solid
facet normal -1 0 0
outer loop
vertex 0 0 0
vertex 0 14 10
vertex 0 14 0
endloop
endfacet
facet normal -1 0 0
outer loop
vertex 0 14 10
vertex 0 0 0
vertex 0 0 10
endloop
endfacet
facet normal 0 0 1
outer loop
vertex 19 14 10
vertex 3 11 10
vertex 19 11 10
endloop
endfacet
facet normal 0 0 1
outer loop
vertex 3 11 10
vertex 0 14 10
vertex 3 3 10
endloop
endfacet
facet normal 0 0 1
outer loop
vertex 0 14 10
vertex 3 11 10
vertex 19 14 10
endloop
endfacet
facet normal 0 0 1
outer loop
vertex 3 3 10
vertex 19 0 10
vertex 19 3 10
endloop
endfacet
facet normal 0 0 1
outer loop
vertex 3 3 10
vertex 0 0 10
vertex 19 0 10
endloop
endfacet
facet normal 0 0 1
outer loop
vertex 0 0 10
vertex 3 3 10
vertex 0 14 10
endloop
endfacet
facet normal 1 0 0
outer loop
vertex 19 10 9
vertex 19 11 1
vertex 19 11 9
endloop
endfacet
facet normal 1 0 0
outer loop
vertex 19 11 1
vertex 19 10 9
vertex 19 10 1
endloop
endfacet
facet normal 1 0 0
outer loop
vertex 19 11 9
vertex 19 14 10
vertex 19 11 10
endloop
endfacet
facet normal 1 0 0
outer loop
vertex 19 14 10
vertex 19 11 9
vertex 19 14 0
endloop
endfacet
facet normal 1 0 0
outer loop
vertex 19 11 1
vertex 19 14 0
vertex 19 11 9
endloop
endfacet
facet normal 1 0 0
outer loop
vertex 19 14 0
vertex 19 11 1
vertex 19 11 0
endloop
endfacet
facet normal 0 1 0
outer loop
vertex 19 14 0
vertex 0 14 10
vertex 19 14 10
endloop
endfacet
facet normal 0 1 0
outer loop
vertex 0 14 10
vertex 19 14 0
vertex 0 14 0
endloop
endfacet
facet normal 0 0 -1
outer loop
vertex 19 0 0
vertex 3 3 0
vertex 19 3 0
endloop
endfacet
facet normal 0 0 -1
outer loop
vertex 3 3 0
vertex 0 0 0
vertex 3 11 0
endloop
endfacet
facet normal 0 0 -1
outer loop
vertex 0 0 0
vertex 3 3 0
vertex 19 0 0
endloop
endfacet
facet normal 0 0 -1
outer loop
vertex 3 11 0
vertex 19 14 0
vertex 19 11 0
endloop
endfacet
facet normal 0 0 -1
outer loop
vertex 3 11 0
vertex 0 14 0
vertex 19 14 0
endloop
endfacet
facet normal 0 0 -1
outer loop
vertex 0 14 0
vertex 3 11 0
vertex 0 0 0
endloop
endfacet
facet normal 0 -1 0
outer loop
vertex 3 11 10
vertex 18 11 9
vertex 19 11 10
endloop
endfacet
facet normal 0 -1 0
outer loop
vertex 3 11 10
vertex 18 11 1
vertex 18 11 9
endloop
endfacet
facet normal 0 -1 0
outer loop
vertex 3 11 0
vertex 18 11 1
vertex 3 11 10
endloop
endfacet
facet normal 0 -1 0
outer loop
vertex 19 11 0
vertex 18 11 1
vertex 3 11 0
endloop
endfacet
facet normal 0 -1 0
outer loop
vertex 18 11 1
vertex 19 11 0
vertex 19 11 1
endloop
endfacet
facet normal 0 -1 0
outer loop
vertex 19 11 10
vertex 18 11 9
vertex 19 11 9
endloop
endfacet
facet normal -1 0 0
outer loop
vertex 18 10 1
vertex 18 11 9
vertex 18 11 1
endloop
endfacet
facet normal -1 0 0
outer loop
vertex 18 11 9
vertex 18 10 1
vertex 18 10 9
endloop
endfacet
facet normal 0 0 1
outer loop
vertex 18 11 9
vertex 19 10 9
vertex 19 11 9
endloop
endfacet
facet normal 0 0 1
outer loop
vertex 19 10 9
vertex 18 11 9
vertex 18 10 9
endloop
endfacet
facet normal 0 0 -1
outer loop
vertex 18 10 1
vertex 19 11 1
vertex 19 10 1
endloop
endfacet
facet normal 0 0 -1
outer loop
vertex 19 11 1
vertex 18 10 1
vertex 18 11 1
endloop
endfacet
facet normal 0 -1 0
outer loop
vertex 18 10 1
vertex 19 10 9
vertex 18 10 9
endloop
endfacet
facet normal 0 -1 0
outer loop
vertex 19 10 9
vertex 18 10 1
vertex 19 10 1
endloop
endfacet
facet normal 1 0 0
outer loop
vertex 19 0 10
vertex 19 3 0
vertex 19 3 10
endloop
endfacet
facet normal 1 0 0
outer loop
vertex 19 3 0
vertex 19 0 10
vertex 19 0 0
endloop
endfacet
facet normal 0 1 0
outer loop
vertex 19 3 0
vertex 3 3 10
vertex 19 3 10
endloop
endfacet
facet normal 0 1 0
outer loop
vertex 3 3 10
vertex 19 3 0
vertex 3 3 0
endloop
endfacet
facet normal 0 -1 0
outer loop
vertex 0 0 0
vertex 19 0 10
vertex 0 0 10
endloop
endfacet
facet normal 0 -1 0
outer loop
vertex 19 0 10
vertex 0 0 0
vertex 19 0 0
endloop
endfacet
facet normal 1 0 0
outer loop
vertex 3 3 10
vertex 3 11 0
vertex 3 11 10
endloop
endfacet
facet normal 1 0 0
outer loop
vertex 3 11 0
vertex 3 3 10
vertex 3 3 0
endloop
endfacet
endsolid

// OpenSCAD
cube([19,3,10]);
translate([0,11,0]) {
	cube([19,3,10]);
    translate([18,-1,1]) {
    cube([1,1,8]);
    }
}
cube([3,14,10]);
